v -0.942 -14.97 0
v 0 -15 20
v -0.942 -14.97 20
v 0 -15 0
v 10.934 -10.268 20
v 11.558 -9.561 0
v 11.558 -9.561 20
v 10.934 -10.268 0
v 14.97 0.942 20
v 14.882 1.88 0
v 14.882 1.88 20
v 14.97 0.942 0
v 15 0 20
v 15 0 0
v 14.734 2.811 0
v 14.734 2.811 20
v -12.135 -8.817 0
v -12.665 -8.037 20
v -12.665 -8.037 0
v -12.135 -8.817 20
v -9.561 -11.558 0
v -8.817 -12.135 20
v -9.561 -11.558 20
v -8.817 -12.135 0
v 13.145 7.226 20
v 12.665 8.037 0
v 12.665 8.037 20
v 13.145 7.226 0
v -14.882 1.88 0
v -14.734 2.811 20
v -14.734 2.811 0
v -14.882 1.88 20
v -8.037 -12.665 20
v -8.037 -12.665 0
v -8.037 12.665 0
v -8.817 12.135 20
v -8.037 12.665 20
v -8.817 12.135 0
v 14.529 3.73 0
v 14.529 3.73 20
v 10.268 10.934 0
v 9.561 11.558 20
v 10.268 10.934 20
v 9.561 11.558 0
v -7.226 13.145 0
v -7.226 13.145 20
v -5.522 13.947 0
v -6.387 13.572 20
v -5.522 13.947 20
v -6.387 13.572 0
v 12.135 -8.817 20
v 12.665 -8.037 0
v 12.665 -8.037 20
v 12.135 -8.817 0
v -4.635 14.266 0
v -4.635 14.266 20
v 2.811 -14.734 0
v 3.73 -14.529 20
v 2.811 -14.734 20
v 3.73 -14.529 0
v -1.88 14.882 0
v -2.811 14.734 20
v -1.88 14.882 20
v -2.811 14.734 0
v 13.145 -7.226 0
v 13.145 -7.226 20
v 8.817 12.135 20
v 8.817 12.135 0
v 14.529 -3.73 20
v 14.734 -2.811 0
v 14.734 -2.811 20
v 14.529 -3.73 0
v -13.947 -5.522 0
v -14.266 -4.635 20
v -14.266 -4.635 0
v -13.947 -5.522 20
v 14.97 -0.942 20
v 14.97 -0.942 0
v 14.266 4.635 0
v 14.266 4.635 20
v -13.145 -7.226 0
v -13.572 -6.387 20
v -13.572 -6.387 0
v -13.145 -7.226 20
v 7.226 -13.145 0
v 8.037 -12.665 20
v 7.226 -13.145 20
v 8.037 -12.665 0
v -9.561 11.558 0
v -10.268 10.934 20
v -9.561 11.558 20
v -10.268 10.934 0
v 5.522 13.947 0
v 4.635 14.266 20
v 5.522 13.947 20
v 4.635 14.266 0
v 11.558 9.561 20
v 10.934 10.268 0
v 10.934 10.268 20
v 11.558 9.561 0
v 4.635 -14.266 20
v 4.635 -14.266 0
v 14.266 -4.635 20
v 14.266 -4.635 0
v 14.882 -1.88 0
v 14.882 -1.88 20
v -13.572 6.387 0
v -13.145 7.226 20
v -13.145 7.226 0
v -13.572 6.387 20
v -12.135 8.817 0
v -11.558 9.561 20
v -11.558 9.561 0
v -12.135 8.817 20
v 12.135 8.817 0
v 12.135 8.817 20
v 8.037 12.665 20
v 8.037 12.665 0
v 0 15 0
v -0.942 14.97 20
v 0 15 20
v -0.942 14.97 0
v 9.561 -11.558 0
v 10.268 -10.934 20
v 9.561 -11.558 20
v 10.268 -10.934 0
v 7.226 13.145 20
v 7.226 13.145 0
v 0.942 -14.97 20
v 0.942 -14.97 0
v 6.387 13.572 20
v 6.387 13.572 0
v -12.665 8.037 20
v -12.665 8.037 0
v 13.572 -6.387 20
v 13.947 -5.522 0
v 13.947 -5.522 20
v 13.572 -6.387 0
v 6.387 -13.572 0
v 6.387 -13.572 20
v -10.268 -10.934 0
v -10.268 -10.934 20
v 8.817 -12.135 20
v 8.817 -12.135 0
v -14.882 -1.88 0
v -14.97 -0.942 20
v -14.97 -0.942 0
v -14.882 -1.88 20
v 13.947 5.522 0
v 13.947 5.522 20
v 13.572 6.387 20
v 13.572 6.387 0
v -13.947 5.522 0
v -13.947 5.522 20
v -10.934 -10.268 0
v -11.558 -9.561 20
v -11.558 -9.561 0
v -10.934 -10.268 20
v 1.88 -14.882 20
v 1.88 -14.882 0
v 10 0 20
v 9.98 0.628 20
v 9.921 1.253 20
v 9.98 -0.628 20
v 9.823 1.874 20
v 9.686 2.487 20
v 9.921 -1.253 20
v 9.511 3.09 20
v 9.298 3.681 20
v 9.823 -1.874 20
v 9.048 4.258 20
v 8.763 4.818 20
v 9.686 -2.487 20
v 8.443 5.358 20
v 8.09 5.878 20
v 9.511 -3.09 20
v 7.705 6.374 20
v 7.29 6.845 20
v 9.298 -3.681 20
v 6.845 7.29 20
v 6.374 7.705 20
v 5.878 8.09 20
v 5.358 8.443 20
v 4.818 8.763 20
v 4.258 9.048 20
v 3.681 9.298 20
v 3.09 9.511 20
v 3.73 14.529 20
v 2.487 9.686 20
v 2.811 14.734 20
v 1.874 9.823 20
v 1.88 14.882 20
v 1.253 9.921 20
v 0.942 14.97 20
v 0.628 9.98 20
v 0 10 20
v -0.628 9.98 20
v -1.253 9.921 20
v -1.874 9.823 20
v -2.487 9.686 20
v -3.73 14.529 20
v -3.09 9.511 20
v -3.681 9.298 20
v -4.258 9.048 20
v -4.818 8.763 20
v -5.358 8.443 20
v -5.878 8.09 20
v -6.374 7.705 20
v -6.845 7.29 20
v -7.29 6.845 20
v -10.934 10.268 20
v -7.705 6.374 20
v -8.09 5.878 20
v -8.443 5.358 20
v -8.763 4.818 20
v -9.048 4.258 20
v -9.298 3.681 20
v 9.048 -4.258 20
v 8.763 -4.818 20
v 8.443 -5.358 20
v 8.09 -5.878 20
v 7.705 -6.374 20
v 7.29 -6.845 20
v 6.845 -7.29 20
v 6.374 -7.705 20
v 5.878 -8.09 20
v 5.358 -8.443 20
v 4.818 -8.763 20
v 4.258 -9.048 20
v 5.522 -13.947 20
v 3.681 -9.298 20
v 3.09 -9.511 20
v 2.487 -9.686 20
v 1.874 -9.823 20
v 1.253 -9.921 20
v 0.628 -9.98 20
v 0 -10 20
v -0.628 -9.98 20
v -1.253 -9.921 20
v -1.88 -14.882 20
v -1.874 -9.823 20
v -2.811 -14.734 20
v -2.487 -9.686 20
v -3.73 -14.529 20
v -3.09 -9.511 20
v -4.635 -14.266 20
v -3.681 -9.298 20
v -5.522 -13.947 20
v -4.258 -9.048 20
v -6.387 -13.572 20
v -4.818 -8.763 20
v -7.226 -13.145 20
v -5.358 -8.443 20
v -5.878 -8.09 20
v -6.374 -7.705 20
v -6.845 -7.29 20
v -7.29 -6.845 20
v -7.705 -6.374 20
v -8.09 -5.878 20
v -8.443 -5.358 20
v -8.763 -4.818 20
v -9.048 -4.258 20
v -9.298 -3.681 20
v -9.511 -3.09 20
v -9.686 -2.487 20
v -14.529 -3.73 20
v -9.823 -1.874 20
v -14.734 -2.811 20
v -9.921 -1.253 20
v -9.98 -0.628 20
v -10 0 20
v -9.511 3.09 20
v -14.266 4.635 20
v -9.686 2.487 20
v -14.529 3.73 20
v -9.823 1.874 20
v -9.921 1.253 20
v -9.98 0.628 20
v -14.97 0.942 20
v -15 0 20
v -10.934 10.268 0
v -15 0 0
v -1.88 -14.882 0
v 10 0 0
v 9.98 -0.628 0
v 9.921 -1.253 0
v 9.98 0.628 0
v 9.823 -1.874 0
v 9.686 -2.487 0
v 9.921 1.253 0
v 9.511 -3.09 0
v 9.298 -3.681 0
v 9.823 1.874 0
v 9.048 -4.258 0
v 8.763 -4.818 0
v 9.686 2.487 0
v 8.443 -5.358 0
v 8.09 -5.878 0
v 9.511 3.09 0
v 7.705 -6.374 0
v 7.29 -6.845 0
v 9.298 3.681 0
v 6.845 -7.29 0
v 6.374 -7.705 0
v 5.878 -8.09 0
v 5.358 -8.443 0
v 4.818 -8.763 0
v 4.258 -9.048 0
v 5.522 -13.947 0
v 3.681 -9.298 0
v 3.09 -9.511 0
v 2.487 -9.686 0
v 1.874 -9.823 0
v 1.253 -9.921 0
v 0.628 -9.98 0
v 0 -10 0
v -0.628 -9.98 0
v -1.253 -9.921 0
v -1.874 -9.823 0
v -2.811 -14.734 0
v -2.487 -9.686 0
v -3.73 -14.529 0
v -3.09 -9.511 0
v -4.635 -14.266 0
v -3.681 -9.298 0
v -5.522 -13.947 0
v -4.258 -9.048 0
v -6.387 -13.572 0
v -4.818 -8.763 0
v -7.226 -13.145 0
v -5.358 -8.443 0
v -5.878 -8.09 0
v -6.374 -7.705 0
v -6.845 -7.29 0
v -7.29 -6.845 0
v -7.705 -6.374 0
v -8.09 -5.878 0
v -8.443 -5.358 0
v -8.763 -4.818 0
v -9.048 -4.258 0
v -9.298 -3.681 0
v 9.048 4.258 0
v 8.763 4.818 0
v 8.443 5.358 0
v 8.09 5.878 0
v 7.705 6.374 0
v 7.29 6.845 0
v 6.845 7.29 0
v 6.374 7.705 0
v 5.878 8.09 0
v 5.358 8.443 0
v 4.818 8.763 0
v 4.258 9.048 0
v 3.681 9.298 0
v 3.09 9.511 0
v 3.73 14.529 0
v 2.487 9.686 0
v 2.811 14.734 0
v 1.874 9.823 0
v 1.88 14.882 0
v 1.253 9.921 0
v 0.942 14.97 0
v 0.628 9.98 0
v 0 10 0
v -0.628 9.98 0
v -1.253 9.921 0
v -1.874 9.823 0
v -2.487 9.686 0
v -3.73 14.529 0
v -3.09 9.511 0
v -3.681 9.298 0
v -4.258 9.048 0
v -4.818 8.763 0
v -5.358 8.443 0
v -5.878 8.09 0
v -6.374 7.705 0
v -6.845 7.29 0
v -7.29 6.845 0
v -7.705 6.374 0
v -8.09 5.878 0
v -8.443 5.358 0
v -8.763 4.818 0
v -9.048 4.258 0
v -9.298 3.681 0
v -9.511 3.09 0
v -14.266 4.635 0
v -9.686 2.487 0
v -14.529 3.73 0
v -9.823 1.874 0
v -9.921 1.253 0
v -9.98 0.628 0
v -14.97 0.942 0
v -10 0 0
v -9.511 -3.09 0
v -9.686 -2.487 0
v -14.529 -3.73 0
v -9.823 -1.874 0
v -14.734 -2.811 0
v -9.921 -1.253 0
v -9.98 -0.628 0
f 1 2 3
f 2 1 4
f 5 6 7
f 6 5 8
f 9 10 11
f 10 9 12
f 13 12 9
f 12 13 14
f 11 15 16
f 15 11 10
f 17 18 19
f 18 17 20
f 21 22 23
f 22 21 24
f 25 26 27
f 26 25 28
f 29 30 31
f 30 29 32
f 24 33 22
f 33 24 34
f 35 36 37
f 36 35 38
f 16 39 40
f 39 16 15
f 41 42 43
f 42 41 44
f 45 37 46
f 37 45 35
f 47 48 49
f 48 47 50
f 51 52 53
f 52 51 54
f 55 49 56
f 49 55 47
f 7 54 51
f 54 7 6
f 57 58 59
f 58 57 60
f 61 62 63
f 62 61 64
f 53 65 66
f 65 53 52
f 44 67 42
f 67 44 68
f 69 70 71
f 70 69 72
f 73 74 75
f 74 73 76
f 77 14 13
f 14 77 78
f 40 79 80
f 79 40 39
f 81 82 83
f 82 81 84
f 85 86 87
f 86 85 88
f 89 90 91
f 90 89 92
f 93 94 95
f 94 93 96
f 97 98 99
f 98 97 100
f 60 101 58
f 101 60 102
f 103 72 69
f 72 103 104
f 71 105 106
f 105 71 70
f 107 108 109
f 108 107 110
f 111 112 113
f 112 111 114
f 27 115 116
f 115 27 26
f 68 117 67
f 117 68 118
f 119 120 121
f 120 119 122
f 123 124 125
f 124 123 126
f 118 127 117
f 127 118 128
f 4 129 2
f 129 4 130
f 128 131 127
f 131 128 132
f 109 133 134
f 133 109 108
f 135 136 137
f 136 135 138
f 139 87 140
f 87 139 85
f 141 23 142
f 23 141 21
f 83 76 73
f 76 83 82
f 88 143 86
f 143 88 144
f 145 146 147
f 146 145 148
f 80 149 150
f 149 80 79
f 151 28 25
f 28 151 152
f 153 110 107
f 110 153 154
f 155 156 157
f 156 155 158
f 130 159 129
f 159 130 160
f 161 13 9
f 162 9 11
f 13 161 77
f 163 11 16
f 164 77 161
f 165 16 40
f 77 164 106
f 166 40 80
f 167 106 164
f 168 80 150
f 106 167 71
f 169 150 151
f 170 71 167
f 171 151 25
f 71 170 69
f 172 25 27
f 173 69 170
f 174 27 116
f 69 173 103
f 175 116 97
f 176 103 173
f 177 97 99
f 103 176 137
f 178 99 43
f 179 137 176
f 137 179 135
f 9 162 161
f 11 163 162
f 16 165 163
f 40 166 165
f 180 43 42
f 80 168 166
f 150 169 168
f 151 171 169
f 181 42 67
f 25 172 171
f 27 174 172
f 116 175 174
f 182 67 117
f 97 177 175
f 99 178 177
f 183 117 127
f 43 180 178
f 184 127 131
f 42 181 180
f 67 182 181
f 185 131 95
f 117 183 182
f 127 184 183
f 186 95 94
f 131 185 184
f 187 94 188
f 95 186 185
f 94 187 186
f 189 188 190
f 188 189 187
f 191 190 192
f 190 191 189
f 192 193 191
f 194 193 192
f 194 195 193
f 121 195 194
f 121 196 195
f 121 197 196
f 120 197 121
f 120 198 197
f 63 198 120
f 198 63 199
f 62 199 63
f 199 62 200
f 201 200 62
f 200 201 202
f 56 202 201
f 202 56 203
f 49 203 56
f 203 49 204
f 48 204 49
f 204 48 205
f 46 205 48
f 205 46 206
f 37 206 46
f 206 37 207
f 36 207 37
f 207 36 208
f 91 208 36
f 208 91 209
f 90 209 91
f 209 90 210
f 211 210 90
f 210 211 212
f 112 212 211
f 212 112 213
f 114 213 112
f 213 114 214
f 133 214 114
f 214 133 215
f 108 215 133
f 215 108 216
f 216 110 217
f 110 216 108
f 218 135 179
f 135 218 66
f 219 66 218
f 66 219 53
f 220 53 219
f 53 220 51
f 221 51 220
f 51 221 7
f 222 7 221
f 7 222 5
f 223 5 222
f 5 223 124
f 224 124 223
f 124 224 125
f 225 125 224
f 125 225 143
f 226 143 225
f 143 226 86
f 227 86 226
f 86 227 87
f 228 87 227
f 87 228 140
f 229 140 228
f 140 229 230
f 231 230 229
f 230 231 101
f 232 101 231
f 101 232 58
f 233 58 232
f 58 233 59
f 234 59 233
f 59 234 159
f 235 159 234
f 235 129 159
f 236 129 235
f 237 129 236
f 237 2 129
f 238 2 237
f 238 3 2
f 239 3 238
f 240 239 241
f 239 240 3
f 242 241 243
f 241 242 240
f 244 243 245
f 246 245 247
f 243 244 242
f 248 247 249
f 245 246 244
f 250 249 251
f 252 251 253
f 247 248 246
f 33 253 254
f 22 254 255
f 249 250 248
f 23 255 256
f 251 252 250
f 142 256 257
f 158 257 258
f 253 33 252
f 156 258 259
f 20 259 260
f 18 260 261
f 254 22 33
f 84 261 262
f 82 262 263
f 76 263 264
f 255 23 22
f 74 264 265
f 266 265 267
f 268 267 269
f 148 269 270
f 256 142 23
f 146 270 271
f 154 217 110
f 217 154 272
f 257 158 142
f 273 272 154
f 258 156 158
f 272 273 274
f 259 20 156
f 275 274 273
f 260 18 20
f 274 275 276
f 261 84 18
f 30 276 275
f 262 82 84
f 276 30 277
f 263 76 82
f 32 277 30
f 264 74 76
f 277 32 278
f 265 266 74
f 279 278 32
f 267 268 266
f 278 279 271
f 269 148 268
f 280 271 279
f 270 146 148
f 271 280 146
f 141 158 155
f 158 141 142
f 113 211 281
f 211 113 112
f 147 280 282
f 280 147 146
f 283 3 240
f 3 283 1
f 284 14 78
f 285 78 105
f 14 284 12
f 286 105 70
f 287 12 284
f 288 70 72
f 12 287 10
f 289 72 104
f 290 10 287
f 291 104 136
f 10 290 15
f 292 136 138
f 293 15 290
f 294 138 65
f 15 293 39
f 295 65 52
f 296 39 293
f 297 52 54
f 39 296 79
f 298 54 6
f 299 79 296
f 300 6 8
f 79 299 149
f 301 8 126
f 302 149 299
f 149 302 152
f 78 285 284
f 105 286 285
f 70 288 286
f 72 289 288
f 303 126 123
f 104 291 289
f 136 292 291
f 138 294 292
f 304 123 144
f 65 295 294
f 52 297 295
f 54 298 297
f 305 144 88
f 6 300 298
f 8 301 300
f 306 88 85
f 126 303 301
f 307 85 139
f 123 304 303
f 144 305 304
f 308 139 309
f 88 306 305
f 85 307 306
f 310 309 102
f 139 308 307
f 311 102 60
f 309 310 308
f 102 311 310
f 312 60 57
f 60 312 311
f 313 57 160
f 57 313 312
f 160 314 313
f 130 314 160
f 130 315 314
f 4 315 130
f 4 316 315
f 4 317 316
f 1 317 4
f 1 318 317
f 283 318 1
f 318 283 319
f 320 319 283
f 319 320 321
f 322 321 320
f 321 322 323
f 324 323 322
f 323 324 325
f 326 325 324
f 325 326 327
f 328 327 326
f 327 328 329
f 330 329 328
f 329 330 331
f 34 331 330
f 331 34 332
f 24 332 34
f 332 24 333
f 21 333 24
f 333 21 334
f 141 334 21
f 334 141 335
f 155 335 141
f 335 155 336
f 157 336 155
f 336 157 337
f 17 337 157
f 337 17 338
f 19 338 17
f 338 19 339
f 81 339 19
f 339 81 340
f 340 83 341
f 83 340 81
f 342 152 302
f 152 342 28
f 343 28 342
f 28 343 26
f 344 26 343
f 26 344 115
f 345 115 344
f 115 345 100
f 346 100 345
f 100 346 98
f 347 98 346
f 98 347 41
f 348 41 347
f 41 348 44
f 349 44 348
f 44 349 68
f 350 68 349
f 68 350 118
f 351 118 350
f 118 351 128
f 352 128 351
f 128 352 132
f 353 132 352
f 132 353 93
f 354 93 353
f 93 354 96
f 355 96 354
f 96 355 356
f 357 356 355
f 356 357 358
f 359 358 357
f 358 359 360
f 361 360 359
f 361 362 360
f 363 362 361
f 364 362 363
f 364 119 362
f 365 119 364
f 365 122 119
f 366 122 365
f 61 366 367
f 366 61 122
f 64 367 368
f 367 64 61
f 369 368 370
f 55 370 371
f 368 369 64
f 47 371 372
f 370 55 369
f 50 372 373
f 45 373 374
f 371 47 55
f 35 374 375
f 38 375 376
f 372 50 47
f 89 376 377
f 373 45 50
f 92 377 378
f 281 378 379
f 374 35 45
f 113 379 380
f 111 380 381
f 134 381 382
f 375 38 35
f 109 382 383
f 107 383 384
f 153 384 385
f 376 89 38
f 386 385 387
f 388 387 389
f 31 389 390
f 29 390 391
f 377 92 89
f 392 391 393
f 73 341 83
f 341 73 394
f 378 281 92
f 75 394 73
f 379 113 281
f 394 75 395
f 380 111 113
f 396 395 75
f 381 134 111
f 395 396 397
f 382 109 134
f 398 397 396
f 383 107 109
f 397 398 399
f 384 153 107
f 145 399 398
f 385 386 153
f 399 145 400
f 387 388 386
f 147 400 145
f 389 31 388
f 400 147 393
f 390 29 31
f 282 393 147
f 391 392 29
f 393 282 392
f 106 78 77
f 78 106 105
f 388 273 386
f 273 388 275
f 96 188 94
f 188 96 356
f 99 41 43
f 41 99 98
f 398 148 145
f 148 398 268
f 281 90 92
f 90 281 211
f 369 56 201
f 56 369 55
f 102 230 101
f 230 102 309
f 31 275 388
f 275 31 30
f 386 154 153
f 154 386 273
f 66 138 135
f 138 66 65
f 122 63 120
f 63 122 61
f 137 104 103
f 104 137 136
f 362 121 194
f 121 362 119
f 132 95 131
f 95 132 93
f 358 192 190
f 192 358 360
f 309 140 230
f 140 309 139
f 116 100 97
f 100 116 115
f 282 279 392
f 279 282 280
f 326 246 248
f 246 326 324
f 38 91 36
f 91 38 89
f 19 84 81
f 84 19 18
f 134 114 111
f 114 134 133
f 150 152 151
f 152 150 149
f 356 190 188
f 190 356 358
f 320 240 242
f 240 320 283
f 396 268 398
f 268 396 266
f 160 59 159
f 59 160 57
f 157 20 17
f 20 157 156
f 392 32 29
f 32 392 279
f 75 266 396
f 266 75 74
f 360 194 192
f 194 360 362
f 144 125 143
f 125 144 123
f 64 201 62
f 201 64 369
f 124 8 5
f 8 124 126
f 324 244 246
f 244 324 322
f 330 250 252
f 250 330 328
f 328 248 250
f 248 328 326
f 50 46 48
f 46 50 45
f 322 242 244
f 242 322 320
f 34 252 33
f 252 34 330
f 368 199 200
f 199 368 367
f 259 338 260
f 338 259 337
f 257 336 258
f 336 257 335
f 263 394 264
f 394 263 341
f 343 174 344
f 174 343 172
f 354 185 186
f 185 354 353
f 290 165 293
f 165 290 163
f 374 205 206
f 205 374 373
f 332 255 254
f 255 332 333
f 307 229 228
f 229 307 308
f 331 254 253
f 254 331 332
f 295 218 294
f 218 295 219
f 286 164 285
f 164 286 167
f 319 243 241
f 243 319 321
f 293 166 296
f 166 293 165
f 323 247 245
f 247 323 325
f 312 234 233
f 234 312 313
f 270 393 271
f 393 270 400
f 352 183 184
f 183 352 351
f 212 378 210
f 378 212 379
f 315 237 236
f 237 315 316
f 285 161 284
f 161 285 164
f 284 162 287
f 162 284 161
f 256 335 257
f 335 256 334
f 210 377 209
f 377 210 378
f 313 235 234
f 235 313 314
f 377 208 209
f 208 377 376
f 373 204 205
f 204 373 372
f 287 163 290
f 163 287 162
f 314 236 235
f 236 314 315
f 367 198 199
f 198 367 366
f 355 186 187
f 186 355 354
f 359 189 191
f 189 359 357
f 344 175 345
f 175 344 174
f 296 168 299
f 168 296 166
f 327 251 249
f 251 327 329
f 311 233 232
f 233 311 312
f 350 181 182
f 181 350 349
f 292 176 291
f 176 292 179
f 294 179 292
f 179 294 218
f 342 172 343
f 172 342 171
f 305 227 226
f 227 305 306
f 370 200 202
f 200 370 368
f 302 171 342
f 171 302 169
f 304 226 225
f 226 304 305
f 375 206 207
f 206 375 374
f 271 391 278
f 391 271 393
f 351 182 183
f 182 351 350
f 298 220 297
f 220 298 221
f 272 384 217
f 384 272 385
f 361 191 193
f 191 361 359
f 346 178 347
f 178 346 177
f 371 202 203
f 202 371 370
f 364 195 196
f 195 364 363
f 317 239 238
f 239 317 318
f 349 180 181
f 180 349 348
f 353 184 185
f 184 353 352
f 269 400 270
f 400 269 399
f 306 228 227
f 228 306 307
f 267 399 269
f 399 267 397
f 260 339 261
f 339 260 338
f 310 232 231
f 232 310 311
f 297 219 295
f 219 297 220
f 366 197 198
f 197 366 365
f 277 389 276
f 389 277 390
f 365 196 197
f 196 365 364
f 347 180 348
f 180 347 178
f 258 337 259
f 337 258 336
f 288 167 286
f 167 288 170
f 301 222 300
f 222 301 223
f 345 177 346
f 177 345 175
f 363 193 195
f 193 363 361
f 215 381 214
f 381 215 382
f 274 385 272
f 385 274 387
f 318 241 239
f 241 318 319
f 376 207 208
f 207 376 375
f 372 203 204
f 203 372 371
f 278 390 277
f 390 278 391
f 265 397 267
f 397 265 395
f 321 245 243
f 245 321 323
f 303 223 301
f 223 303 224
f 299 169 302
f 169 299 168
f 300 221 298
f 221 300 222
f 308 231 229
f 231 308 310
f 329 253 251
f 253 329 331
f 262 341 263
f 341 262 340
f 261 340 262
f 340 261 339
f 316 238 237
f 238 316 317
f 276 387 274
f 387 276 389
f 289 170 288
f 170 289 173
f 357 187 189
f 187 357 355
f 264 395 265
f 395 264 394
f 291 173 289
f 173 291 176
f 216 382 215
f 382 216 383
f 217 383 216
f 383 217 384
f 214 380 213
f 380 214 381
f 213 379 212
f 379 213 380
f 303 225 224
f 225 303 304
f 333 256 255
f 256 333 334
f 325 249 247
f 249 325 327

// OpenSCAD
// Central Hub Component
module central_hub() {
    difference() {
        // Outer cylinder
        cylinder(h = 20, r1 = 15, r2 = 15, $fn = 100);
        // Inner hollow cylinder
        translate([0, 0, -1]) cylinder(h = 22, r = 10, $fn = 100);
        // Flared base
        translate([0, 0, -2]) cylinder(h = 2, r1 = 15, r2 = 18, $fn = 100);
    }
}

// Render the central hub
central_hub();
